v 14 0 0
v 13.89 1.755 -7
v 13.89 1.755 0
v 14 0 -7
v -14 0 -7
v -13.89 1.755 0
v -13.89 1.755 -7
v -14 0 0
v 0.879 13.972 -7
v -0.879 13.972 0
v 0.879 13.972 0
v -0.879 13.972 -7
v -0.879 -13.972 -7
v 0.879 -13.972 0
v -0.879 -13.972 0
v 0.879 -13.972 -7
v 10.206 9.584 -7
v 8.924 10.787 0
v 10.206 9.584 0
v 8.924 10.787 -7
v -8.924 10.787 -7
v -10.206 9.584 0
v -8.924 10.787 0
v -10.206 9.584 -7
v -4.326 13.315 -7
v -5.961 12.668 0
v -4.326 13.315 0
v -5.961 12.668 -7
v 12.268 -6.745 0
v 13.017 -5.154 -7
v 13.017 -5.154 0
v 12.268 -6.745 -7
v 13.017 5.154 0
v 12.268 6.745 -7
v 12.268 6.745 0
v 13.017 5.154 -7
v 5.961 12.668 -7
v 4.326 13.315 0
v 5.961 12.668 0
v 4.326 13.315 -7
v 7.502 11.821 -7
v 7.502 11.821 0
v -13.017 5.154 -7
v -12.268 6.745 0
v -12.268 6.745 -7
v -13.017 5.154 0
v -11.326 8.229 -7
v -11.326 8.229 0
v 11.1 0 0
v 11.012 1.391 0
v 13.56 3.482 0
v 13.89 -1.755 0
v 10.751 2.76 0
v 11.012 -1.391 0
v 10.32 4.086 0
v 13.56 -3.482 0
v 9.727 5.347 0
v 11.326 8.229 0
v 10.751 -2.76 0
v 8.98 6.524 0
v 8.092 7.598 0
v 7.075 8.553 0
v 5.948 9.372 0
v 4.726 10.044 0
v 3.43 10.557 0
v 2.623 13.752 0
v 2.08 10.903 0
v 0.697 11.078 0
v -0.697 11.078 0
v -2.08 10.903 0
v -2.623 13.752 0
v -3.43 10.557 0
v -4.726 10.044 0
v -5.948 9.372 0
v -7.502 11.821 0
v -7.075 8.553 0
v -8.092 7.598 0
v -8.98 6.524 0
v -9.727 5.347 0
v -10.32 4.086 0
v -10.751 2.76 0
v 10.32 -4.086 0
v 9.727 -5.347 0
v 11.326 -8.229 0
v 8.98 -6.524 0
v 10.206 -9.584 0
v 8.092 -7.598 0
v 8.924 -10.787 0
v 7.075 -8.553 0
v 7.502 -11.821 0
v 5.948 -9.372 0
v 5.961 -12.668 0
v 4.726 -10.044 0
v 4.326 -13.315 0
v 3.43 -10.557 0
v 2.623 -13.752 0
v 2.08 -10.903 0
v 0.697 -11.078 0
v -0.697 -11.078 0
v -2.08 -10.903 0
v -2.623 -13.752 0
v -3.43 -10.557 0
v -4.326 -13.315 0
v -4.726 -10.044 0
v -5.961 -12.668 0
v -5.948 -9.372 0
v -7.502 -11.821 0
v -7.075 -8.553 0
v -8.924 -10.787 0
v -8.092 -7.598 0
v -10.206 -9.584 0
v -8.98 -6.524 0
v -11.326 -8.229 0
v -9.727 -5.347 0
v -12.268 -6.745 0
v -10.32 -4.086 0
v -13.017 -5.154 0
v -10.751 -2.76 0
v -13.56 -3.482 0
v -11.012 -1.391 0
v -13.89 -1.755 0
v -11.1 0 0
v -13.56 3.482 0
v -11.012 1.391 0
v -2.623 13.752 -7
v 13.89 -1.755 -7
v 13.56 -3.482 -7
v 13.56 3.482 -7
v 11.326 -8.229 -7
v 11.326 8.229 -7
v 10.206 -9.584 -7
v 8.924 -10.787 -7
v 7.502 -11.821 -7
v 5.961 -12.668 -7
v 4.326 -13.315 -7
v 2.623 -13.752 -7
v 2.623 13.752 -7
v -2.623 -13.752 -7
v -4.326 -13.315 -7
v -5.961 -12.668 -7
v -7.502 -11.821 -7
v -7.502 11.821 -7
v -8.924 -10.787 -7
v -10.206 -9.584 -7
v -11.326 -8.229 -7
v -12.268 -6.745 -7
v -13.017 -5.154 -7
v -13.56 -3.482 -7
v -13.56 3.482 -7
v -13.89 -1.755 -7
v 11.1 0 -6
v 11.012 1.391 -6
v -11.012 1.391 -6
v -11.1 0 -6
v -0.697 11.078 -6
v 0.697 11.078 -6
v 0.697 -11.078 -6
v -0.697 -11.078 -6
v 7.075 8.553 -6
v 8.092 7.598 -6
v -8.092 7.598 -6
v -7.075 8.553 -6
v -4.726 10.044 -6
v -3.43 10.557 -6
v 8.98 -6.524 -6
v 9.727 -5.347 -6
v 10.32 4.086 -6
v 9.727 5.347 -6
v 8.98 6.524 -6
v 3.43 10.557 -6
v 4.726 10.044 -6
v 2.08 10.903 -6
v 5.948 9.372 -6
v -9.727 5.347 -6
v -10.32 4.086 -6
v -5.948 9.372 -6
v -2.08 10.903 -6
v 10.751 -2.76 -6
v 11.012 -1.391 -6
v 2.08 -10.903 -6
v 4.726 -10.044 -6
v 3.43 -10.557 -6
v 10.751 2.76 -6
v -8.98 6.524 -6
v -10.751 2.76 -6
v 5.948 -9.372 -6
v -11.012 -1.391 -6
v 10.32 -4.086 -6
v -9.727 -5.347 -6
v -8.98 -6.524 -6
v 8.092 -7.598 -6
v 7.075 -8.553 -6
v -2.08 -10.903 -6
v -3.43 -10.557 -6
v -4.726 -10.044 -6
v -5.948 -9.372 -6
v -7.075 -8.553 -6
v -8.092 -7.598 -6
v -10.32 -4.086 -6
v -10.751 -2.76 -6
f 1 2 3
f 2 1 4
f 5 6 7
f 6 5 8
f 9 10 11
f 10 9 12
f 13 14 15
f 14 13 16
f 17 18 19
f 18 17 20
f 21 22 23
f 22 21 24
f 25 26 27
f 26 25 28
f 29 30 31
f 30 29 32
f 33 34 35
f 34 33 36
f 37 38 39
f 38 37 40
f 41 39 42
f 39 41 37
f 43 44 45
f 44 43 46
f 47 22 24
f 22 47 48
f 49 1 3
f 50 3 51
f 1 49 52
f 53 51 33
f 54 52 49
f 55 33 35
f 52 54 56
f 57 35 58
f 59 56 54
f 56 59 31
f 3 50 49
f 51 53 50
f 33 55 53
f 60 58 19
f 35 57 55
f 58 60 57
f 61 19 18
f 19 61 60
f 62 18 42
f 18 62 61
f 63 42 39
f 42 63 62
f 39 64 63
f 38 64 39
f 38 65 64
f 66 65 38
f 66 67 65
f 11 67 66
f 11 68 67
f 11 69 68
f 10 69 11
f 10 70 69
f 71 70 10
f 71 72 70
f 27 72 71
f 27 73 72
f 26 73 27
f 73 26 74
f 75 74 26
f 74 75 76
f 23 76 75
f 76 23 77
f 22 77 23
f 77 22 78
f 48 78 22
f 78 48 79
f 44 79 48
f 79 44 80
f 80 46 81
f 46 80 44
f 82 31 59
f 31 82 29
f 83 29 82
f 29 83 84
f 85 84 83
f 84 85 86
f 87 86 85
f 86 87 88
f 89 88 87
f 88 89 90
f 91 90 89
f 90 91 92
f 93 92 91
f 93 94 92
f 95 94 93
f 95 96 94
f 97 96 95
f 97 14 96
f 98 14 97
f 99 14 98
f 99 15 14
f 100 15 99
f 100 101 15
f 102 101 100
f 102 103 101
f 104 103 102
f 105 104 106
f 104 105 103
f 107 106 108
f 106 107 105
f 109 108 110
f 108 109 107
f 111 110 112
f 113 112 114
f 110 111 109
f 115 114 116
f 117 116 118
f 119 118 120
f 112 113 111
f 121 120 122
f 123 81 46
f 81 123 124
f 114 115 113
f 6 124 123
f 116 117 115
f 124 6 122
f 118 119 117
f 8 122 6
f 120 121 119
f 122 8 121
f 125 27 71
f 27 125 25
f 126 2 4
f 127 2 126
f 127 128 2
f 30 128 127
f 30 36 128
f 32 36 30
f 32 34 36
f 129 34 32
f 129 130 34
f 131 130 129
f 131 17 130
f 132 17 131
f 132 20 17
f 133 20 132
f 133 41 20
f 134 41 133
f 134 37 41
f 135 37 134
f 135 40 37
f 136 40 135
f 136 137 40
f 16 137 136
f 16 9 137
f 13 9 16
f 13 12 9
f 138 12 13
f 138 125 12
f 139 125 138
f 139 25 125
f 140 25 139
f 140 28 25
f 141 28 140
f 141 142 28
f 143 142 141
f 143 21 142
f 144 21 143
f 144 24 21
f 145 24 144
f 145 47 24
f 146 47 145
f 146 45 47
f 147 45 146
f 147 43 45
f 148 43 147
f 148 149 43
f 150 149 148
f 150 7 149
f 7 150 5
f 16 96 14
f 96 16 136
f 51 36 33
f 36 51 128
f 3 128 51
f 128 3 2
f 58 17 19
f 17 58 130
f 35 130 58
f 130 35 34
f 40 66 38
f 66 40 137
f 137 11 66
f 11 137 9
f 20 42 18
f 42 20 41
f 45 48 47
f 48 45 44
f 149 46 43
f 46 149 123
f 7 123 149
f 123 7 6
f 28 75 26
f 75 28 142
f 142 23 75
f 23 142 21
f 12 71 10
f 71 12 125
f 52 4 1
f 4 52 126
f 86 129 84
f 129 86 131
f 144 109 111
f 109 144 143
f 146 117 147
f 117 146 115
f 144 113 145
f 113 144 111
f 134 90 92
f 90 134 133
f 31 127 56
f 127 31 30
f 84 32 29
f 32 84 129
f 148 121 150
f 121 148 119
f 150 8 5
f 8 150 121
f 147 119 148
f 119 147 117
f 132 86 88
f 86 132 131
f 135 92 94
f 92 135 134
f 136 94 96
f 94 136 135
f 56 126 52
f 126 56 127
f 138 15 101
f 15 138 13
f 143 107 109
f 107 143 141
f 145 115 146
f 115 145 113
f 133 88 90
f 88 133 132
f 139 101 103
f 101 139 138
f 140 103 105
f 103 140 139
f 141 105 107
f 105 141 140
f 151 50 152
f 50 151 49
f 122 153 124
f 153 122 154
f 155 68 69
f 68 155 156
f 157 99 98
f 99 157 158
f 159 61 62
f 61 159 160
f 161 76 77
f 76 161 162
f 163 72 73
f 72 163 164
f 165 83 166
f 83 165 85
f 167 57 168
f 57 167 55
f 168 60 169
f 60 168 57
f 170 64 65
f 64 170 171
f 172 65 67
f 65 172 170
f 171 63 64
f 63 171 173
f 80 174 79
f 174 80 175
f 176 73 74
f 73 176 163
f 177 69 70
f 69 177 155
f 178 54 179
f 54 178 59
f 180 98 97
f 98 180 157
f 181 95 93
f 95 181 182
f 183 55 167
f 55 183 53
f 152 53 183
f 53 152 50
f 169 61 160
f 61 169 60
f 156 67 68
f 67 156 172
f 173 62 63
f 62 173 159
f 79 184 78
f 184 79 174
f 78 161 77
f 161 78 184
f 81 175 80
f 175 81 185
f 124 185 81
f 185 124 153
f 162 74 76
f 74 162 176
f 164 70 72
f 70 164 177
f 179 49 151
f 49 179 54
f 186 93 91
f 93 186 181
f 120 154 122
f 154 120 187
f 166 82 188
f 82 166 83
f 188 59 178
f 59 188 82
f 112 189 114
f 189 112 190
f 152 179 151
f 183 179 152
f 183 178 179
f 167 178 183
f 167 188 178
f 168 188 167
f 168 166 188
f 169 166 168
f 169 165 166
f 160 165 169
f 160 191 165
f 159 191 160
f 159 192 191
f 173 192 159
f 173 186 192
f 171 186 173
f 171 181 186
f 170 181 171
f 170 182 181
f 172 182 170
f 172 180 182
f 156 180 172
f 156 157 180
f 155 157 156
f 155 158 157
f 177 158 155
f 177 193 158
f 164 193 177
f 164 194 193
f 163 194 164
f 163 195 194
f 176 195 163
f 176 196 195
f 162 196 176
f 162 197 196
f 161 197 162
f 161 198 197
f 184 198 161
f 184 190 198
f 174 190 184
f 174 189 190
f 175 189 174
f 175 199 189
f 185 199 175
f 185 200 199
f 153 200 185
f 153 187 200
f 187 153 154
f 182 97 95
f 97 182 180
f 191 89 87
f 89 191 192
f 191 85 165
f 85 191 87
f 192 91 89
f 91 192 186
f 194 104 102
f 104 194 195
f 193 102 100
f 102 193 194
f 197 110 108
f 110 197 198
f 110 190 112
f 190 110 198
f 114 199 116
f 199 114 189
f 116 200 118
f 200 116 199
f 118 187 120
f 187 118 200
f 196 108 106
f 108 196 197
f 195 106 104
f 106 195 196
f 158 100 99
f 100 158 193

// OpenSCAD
$fn = 50;


difference() {
	union() {
		translate(v = [0, 0, -7.0000000000]) {
			cylinder(h = 7, r = 14.0000000000);
		}
	}
	union() {
		#translate(v = [0, 0, -6.0000000000]) {
			cylinder(h = 6, r = 11.1000000000);
		}
	}
}
